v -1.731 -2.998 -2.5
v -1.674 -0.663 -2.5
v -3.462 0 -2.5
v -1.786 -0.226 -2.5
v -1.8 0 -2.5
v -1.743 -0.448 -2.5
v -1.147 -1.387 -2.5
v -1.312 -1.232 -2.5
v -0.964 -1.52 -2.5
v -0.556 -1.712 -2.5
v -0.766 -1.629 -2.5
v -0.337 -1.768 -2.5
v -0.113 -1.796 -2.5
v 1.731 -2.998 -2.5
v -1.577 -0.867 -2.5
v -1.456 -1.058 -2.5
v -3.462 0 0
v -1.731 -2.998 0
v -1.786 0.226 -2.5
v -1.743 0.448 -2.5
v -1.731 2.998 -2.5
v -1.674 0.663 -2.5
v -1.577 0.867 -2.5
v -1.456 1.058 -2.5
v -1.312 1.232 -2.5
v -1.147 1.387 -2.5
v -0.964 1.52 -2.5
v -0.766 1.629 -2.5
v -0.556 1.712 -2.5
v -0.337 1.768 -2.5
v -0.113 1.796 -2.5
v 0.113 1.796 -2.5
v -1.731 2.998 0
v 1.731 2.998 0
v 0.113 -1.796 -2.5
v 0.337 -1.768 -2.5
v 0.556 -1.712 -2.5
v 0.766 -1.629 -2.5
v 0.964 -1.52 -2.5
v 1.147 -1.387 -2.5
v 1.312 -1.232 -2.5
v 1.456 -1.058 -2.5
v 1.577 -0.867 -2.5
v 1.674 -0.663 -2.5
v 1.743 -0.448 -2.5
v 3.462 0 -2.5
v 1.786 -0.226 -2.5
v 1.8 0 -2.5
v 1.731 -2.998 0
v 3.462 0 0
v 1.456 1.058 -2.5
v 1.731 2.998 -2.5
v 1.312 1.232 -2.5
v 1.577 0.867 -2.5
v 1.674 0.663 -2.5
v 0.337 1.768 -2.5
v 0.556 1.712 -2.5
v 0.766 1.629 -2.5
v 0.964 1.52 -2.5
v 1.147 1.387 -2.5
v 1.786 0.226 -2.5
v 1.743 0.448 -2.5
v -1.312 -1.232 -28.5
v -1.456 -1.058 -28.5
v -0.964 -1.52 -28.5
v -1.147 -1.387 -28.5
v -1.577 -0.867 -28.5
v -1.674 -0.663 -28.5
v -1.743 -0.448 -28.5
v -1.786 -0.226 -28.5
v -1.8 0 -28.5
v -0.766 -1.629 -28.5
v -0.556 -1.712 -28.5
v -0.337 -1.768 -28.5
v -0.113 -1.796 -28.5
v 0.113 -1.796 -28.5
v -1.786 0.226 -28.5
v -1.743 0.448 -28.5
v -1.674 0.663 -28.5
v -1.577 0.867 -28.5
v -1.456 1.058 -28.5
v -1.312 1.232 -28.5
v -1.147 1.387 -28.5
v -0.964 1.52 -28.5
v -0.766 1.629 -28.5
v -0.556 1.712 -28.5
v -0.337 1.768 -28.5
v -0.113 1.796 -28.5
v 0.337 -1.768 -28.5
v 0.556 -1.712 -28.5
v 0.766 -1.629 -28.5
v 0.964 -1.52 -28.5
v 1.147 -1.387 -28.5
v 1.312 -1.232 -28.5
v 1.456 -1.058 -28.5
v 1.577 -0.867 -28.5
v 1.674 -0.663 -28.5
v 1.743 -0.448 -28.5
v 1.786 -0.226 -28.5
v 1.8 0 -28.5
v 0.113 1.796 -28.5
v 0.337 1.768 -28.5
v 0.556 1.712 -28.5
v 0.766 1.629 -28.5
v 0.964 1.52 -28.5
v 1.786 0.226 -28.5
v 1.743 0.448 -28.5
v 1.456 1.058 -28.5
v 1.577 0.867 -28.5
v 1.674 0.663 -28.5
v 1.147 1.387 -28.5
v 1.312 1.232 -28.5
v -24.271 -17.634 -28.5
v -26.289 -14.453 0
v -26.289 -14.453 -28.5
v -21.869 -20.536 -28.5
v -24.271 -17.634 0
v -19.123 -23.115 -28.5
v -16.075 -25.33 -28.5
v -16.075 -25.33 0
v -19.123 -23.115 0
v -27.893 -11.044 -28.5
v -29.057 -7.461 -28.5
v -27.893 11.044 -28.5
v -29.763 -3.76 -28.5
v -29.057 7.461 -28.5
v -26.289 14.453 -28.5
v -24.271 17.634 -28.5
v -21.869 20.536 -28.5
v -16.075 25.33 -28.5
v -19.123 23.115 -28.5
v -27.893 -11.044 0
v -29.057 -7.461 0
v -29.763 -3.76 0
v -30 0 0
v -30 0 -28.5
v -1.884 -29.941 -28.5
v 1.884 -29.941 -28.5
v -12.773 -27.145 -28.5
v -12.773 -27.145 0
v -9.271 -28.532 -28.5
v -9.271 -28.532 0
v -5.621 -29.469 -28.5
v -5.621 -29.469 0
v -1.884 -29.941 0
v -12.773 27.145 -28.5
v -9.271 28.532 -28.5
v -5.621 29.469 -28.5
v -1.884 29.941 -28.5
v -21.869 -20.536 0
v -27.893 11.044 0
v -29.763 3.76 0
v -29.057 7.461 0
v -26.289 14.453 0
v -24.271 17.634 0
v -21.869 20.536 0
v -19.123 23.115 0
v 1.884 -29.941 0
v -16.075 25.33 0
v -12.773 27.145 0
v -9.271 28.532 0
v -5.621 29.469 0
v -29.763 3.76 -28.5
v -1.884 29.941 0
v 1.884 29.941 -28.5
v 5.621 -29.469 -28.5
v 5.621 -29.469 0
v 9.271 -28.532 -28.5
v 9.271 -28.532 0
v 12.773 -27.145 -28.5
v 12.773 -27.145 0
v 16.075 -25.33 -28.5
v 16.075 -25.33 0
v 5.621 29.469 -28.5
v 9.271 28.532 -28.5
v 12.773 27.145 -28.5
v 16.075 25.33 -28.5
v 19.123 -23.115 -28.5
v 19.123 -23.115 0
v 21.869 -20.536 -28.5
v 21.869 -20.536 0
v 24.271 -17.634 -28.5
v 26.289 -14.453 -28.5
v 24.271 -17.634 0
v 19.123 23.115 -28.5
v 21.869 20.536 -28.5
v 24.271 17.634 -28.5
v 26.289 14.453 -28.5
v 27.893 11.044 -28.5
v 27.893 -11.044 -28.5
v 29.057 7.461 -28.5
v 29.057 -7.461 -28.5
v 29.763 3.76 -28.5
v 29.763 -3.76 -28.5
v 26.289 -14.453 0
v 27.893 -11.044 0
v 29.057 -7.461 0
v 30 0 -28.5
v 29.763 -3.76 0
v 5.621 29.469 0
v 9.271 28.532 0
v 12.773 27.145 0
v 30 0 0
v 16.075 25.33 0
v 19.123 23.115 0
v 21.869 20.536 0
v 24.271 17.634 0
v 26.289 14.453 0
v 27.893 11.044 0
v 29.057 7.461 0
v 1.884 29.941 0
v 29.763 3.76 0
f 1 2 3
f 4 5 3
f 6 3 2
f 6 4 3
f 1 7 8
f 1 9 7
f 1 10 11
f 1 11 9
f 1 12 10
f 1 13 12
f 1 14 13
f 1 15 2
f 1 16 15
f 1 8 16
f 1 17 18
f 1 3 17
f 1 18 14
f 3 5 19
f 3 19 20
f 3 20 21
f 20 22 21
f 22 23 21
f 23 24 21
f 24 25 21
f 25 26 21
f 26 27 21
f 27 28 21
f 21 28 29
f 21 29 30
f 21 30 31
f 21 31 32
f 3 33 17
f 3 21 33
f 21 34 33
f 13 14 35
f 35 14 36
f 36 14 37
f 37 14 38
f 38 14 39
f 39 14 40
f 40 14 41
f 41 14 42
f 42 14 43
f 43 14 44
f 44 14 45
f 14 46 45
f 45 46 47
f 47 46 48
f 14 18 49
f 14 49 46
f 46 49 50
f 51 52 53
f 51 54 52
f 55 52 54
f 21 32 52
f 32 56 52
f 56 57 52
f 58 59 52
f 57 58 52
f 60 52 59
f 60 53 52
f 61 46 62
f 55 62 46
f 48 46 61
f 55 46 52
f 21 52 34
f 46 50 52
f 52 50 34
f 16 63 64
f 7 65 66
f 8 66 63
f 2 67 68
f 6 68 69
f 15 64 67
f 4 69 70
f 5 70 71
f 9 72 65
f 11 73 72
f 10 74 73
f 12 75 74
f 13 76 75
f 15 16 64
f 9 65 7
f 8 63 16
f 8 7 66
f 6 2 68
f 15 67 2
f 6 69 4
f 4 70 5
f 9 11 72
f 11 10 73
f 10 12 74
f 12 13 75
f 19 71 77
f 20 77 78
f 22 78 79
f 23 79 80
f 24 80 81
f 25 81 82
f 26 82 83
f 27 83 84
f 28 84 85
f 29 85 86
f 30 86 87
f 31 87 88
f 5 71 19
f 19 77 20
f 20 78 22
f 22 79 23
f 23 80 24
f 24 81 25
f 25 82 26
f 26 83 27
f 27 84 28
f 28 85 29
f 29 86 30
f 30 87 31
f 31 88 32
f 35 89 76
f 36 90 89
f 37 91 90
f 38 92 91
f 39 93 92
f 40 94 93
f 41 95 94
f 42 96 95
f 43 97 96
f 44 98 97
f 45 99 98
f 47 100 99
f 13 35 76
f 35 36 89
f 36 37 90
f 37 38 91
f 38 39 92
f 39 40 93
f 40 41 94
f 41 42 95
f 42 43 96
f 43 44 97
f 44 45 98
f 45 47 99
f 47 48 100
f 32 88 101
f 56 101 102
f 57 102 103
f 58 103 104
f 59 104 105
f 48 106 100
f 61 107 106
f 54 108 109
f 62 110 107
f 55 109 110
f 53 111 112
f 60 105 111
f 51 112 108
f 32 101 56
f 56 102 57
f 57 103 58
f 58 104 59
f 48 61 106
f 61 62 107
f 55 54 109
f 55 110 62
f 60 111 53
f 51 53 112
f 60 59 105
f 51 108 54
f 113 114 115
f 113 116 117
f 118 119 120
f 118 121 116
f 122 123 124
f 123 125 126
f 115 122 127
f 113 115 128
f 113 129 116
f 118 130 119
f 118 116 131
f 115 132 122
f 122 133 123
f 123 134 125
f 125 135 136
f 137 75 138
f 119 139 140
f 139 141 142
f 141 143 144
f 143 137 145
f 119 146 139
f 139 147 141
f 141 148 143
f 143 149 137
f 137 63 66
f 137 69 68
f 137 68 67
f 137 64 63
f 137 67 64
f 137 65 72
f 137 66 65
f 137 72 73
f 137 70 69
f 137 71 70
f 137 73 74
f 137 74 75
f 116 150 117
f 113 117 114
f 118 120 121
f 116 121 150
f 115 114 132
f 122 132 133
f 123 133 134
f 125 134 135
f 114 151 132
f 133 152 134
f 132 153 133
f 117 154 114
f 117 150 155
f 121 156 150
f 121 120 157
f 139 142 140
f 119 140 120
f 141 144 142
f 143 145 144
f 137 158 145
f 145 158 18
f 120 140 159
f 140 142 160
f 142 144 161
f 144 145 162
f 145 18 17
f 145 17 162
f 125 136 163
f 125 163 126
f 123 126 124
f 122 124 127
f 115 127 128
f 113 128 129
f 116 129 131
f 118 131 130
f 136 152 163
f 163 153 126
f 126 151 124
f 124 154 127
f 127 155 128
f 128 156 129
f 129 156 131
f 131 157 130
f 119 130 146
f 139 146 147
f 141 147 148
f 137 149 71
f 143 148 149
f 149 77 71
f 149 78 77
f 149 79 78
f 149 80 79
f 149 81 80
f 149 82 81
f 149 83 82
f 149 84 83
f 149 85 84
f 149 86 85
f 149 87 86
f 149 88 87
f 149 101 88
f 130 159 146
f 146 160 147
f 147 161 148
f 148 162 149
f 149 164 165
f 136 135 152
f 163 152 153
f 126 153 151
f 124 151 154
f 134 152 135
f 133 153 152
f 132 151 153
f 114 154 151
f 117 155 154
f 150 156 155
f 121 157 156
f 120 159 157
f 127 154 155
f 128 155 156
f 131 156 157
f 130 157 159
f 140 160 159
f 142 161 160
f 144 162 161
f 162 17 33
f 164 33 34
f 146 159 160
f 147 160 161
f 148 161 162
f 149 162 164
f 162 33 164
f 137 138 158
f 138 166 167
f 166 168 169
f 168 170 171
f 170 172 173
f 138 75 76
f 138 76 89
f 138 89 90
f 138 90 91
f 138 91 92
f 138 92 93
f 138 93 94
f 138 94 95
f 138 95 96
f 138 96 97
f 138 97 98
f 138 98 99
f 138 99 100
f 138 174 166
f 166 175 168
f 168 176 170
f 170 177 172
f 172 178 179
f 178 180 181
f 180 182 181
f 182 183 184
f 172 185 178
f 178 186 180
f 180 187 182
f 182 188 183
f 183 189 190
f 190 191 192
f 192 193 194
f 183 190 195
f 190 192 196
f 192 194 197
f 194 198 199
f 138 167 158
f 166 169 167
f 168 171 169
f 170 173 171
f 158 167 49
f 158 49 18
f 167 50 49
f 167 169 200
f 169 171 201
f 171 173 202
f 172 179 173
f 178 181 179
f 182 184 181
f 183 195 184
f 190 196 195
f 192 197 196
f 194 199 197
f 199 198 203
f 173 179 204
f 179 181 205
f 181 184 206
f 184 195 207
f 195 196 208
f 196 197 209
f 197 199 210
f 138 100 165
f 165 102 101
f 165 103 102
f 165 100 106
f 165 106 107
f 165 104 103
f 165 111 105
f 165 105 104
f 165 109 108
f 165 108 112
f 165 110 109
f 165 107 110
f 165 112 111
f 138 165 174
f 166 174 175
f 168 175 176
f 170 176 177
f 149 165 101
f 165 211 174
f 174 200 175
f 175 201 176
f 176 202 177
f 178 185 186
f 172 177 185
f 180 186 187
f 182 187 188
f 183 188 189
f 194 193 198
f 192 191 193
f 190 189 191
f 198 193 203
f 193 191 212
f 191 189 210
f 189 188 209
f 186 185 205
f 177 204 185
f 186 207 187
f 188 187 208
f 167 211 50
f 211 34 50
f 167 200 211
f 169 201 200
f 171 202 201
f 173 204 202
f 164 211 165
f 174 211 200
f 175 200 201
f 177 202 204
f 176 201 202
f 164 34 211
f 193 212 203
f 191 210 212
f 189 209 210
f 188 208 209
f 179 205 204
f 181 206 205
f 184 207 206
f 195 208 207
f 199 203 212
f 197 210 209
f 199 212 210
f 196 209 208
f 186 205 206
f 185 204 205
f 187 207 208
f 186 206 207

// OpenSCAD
$fn = 50;


difference() {
	union() {
		translate(v = [0, 0, -28.5000000000]) {
			cylinder(h = 28.5000000000, r = 30.0000000000);
		}
	}
	union() {
		translate(v = [0, 0, 0]) {
			rotate(a = [0, 0, 0]) {
				difference() {
					union() {
						translate(v = [0, 0, -2.5000000000]) {
							linear_extrude(height = 2.5000000000) {
								polygon(points = [[3.4620000000, 0.0000000000], [1.7310000000, 2.9981799479], [-1.7310000000, 2.9981799479], [-3.4620000000, 0.0000000000], [-1.7310000000, -2.9981799479], [1.7310000000, -2.9981799479]]);
							}
						}
					}
					union();
				}
			}
		}
		#translate(v = [0, 0, -100.0000000000]) {
			cylinder(h = 200, r = 1.8000000000);
		}
	}
}
